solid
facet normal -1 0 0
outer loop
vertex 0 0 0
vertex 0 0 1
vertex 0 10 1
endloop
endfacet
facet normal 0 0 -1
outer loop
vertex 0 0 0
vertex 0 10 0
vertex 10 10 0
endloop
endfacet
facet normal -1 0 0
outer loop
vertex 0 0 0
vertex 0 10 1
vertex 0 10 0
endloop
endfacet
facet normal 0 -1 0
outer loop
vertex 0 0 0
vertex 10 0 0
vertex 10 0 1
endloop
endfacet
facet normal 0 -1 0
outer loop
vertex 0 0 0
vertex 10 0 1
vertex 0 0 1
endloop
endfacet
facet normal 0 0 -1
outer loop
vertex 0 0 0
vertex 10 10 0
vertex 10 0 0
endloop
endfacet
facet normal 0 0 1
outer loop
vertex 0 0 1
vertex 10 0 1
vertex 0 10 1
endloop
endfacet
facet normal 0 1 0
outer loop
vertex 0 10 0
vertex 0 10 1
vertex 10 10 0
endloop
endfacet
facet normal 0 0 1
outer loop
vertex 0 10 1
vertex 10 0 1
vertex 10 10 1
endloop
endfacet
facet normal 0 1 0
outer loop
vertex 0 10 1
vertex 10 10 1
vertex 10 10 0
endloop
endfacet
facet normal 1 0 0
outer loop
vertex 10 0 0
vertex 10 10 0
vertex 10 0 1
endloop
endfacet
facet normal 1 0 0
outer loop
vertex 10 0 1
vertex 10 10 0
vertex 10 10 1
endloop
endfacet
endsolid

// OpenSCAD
/* Warning, this is a very basic generator with a lot of approximation 
input data : [TQFP, 3ZB, 10x10x1mm, 64, , A, C04-21544A]
generated by com.zoubworld.electronics.cad.model3d.Basic
Date : Sun Feb 15 10:50:49 CET 2026
*/

//body
color("black")
translate([0,0,0])
cube([10.0,10.0,1.0], center=false);
